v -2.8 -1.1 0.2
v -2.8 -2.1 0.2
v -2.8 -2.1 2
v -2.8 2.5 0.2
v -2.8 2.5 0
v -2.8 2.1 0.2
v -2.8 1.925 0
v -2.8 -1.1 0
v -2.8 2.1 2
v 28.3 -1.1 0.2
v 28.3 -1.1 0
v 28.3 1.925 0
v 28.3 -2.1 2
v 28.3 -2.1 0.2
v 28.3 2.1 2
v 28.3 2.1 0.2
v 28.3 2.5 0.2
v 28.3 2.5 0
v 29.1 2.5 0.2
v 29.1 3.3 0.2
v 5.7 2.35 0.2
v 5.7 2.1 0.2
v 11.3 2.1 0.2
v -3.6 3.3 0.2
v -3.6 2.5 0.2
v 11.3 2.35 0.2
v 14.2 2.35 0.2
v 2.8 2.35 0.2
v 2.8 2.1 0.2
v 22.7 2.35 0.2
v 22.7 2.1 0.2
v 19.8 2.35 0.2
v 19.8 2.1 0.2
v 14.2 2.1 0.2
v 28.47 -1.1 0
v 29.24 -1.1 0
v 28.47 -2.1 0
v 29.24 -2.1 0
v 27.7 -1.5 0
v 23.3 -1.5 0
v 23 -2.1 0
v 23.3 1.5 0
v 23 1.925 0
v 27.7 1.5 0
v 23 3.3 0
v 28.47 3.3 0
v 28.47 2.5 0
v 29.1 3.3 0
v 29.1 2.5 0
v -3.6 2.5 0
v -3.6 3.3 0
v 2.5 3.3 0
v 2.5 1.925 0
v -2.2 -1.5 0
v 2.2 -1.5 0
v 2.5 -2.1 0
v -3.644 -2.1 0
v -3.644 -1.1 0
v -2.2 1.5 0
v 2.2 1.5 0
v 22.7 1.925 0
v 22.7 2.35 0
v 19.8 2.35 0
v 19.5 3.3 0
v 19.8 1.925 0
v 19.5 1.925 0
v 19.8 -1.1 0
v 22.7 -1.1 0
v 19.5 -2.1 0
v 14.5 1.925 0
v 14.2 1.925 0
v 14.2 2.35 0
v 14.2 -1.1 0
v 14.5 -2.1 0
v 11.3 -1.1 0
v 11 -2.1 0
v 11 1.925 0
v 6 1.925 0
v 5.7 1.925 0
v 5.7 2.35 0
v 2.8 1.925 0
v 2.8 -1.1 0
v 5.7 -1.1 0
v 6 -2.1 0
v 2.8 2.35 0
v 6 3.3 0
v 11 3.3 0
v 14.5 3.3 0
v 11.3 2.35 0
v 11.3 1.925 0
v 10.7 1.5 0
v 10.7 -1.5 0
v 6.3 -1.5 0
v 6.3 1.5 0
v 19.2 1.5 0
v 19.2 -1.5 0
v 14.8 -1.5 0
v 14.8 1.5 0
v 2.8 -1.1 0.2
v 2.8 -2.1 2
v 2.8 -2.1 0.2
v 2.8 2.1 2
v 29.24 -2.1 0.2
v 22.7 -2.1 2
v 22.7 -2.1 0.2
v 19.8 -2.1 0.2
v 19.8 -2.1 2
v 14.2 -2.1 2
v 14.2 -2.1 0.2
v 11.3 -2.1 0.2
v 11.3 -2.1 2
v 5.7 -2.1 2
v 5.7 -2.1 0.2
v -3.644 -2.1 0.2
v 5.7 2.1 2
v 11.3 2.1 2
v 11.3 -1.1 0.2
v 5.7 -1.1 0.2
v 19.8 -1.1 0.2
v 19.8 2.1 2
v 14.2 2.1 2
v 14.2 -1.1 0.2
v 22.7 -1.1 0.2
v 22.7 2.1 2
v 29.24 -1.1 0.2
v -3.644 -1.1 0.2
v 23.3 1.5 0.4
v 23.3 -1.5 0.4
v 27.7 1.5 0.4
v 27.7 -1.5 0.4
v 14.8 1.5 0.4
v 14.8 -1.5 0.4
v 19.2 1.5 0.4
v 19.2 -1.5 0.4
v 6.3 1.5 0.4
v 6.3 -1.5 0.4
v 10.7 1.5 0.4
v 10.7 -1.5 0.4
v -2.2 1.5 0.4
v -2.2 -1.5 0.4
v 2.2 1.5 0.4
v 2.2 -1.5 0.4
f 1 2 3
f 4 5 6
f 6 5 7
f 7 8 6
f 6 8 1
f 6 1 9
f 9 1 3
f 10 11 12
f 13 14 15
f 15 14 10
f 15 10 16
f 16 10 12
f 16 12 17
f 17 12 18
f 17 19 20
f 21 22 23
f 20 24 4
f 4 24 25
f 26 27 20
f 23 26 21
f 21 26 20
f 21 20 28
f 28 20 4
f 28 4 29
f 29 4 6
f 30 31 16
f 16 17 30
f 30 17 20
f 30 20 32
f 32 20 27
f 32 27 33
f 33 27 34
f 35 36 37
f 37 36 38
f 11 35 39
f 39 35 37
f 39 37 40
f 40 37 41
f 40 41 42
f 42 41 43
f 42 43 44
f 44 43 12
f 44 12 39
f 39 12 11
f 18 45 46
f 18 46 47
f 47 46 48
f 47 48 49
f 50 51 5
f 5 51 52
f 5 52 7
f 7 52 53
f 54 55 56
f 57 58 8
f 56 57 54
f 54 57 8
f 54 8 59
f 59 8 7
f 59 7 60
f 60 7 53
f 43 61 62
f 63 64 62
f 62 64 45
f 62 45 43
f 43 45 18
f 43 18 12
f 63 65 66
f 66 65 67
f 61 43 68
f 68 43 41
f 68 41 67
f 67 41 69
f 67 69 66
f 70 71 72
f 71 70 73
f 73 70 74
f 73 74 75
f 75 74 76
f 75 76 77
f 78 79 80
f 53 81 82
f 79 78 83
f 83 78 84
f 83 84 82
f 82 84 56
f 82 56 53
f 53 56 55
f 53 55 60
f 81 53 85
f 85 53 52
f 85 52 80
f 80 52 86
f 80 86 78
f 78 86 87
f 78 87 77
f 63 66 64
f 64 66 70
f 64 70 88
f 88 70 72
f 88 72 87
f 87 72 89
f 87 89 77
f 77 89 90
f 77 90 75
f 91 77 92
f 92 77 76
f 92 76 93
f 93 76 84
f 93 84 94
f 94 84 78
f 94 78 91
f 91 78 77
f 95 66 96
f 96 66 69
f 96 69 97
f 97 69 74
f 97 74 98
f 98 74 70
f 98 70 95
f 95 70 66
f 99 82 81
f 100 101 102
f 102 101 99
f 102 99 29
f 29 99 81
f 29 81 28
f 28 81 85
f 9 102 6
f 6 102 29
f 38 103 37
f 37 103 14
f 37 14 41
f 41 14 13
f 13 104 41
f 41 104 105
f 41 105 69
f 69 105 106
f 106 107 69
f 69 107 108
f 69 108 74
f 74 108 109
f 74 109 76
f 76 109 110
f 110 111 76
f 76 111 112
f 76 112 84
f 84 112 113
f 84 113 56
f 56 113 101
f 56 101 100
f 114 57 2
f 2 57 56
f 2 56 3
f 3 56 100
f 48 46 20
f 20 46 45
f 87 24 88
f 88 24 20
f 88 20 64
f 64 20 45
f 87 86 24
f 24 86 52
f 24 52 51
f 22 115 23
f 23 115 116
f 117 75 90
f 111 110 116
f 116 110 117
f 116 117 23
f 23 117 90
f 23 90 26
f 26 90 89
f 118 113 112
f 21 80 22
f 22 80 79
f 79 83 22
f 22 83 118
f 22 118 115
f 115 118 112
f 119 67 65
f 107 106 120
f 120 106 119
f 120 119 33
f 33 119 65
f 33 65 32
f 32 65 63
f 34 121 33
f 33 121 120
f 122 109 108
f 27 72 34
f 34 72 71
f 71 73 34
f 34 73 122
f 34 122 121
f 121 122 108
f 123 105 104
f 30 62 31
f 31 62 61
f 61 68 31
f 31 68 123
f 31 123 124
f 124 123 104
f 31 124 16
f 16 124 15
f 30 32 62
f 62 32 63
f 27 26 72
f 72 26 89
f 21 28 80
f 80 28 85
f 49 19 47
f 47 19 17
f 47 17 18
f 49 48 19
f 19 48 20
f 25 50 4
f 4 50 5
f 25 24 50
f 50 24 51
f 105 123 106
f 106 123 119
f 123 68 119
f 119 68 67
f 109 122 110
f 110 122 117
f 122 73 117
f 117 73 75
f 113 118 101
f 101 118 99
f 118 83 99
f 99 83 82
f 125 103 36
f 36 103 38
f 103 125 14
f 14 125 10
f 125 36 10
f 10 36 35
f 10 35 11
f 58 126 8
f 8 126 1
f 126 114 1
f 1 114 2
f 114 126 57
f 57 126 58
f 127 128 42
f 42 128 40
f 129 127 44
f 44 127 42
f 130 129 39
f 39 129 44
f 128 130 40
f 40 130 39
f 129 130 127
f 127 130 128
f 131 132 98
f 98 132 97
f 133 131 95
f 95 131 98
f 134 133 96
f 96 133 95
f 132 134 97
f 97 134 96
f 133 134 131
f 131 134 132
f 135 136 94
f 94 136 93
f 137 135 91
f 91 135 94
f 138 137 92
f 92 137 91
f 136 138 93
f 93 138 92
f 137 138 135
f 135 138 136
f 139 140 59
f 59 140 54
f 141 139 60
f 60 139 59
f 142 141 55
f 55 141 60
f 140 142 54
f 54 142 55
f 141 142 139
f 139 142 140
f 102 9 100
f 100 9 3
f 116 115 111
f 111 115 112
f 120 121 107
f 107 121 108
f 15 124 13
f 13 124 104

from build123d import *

# Parameters (mm, degrees)
SKETCH_1_W             = 5.6
SKETCH_1_H             = 4.2
EXTRUDE_1_DEPTH        = 1.4
SKETCH_3_W             = 31.1
SKETCH_3_H             = 1.5
EXTRUDE_2_DEPTH        = 0.2
PATTERN_LINEAR_1_COUNT = 4
PATTERN_LINEAR_1_PITCH = 8.5
SKETCH_4_W             = 2.9
SKETCH_4_H             = 1.1
CUT_EXTRUDE_1_DEPTH    = 0.2
SKETCH_5_W             = 0.2
SKETCH_5_H             = 0.8
EXTRUDE_3_DEPTH        = 0.8
SKETCH_6_W             = 0.2
SKETCH_6_H             = 0.8
EXTRUDE_4_DEPTH        = 0.8
SKETCH_7_W             = 32.884134448
SKETCH_7_H             = 1
EXTRUDE_5_DEPTH        = 0.2
CUT_EXTRUDE_START      = -1
SKETCH_8_W             = 4.4
SKETCH_8_H             = 3
CUT_EXTRUDE_2_DEPTH    = 1
SKETCH_9_W             = 5.6
SKETCH_9_H             = 4.2
EXTRUDE_6_DEPTH        = 0.6


with BuildPart() as part:
    # Эскиз1 → Бобышка-Вытянуть1 (new body)
    with BuildSketch(Plane.XY):
        Rectangle(SKETCH_1_W, SKETCH_1_H)
    extrude_1 = extrude(amount=EXTRUDE_1_DEPTH)

    # Эскиз3 → Бобышка-Вытянуть2 (add)
    with BuildSketch(Plane(origin=(0, 0, 0), x_dir=(-1, 0, 0), z_dir=(0, 0, -1))):
        with Locations((-12.75, 2.55)):
            Rectangle(SKETCH_3_W, SKETCH_3_H)
    extrude(amount=-EXTRUDE_2_DEPTH)

    # Линейный массив1: Бобышка-Вытянуть1 ×4
    with Locations(*[(i * PATTERN_LINEAR_1_PITCH, 0, 0) for i in range(1, PATTERN_LINEAR_1_COUNT)]):
        add(extrude_1)

    # Эскиз4 → Вырез-Вытянуть1 (cut)
    with BuildSketch(Plane(origin=(0, 0, 0), x_dir=(-1, 0, 0), z_dir=(0, 0, -1))):
        with Locations((-21.25, 1.8)):
            Rectangle(SKETCH_4_W, SKETCH_4_H)
        with Locations((-12.75, 1.8)):
            Rectangle(SKETCH_4_W, SKETCH_4_H)
        with Locations((-4.25, 1.8)):
            Rectangle(SKETCH_4_W, SKETCH_4_H)
    extrude(amount=-CUT_EXTRUDE_1_DEPTH, mode=Mode.SUBTRACT)

    # Эскиз5 → Бобышка-Вытянуть3 (add)
    with BuildSketch(Plane(origin=(28.3, 0, 0), x_dir=(0, 0, -1), z_dir=(1, 0, 0))):
        with Locations((-0.1, 2.9)):
            Rectangle(SKETCH_5_W, SKETCH_5_H)
    extrude(amount=EXTRUDE_3_DEPTH)

    # Эскиз6 → Бобышка-Вытянуть4 (add)
    with BuildSketch(Plane.ZY.offset(2.8)):
        with Locations((0.1, 2.9)):
            Rectangle(SKETCH_6_W, SKETCH_6_H)
    extrude(amount=EXTRUDE_4_DEPTH)

    # Эскиз7 → Бобышка-Вытянуть5 (add)
    with BuildSketch(Plane(origin=(0, 0, 0), x_dir=(-1, 0, 0), z_dir=(0, 0, -1))):
        with Locations((-12.798406479, -1.6)):
            Rectangle(SKETCH_7_W, SKETCH_7_H)
    extrude(amount=-EXTRUDE_5_DEPTH)

    # Эскиз8 → Вырез-Вытянуть2 (cut)
    with BuildSketch(Plane.XY.offset(1.4).offset(CUT_EXTRUDE_START)):
        Rectangle(SKETCH_8_W, SKETCH_8_H)
        with Locations((8.5, 0)):
            Rectangle(SKETCH_8_W, SKETCH_8_H)
        with Locations((17, 0)):
            Rectangle(SKETCH_8_W, SKETCH_8_H)
        with Locations((25.5, 0)):
            Rectangle(SKETCH_8_W, SKETCH_8_H)
    extrude(amount=-CUT_EXTRUDE_2_DEPTH, mode=Mode.SUBTRACT)

    # Эскиз9 → Бобышка-Вытянуть6 (add)
    with BuildSketch(Plane.XY.offset(1.4)):
        Rectangle(SKETCH_9_W, SKETCH_9_H)
        with Locations((8.5, 0)):
            Rectangle(SKETCH_9_W, SKETCH_9_H)
        with Locations((17, 0)):
            Rectangle(SKETCH_9_W, SKETCH_9_H)
        with Locations((25.5, 0)):
            Rectangle(SKETCH_9_W, SKETCH_9_H)
    extrude(amount=EXTRUDE_6_DEPTH)


solid = part.part
